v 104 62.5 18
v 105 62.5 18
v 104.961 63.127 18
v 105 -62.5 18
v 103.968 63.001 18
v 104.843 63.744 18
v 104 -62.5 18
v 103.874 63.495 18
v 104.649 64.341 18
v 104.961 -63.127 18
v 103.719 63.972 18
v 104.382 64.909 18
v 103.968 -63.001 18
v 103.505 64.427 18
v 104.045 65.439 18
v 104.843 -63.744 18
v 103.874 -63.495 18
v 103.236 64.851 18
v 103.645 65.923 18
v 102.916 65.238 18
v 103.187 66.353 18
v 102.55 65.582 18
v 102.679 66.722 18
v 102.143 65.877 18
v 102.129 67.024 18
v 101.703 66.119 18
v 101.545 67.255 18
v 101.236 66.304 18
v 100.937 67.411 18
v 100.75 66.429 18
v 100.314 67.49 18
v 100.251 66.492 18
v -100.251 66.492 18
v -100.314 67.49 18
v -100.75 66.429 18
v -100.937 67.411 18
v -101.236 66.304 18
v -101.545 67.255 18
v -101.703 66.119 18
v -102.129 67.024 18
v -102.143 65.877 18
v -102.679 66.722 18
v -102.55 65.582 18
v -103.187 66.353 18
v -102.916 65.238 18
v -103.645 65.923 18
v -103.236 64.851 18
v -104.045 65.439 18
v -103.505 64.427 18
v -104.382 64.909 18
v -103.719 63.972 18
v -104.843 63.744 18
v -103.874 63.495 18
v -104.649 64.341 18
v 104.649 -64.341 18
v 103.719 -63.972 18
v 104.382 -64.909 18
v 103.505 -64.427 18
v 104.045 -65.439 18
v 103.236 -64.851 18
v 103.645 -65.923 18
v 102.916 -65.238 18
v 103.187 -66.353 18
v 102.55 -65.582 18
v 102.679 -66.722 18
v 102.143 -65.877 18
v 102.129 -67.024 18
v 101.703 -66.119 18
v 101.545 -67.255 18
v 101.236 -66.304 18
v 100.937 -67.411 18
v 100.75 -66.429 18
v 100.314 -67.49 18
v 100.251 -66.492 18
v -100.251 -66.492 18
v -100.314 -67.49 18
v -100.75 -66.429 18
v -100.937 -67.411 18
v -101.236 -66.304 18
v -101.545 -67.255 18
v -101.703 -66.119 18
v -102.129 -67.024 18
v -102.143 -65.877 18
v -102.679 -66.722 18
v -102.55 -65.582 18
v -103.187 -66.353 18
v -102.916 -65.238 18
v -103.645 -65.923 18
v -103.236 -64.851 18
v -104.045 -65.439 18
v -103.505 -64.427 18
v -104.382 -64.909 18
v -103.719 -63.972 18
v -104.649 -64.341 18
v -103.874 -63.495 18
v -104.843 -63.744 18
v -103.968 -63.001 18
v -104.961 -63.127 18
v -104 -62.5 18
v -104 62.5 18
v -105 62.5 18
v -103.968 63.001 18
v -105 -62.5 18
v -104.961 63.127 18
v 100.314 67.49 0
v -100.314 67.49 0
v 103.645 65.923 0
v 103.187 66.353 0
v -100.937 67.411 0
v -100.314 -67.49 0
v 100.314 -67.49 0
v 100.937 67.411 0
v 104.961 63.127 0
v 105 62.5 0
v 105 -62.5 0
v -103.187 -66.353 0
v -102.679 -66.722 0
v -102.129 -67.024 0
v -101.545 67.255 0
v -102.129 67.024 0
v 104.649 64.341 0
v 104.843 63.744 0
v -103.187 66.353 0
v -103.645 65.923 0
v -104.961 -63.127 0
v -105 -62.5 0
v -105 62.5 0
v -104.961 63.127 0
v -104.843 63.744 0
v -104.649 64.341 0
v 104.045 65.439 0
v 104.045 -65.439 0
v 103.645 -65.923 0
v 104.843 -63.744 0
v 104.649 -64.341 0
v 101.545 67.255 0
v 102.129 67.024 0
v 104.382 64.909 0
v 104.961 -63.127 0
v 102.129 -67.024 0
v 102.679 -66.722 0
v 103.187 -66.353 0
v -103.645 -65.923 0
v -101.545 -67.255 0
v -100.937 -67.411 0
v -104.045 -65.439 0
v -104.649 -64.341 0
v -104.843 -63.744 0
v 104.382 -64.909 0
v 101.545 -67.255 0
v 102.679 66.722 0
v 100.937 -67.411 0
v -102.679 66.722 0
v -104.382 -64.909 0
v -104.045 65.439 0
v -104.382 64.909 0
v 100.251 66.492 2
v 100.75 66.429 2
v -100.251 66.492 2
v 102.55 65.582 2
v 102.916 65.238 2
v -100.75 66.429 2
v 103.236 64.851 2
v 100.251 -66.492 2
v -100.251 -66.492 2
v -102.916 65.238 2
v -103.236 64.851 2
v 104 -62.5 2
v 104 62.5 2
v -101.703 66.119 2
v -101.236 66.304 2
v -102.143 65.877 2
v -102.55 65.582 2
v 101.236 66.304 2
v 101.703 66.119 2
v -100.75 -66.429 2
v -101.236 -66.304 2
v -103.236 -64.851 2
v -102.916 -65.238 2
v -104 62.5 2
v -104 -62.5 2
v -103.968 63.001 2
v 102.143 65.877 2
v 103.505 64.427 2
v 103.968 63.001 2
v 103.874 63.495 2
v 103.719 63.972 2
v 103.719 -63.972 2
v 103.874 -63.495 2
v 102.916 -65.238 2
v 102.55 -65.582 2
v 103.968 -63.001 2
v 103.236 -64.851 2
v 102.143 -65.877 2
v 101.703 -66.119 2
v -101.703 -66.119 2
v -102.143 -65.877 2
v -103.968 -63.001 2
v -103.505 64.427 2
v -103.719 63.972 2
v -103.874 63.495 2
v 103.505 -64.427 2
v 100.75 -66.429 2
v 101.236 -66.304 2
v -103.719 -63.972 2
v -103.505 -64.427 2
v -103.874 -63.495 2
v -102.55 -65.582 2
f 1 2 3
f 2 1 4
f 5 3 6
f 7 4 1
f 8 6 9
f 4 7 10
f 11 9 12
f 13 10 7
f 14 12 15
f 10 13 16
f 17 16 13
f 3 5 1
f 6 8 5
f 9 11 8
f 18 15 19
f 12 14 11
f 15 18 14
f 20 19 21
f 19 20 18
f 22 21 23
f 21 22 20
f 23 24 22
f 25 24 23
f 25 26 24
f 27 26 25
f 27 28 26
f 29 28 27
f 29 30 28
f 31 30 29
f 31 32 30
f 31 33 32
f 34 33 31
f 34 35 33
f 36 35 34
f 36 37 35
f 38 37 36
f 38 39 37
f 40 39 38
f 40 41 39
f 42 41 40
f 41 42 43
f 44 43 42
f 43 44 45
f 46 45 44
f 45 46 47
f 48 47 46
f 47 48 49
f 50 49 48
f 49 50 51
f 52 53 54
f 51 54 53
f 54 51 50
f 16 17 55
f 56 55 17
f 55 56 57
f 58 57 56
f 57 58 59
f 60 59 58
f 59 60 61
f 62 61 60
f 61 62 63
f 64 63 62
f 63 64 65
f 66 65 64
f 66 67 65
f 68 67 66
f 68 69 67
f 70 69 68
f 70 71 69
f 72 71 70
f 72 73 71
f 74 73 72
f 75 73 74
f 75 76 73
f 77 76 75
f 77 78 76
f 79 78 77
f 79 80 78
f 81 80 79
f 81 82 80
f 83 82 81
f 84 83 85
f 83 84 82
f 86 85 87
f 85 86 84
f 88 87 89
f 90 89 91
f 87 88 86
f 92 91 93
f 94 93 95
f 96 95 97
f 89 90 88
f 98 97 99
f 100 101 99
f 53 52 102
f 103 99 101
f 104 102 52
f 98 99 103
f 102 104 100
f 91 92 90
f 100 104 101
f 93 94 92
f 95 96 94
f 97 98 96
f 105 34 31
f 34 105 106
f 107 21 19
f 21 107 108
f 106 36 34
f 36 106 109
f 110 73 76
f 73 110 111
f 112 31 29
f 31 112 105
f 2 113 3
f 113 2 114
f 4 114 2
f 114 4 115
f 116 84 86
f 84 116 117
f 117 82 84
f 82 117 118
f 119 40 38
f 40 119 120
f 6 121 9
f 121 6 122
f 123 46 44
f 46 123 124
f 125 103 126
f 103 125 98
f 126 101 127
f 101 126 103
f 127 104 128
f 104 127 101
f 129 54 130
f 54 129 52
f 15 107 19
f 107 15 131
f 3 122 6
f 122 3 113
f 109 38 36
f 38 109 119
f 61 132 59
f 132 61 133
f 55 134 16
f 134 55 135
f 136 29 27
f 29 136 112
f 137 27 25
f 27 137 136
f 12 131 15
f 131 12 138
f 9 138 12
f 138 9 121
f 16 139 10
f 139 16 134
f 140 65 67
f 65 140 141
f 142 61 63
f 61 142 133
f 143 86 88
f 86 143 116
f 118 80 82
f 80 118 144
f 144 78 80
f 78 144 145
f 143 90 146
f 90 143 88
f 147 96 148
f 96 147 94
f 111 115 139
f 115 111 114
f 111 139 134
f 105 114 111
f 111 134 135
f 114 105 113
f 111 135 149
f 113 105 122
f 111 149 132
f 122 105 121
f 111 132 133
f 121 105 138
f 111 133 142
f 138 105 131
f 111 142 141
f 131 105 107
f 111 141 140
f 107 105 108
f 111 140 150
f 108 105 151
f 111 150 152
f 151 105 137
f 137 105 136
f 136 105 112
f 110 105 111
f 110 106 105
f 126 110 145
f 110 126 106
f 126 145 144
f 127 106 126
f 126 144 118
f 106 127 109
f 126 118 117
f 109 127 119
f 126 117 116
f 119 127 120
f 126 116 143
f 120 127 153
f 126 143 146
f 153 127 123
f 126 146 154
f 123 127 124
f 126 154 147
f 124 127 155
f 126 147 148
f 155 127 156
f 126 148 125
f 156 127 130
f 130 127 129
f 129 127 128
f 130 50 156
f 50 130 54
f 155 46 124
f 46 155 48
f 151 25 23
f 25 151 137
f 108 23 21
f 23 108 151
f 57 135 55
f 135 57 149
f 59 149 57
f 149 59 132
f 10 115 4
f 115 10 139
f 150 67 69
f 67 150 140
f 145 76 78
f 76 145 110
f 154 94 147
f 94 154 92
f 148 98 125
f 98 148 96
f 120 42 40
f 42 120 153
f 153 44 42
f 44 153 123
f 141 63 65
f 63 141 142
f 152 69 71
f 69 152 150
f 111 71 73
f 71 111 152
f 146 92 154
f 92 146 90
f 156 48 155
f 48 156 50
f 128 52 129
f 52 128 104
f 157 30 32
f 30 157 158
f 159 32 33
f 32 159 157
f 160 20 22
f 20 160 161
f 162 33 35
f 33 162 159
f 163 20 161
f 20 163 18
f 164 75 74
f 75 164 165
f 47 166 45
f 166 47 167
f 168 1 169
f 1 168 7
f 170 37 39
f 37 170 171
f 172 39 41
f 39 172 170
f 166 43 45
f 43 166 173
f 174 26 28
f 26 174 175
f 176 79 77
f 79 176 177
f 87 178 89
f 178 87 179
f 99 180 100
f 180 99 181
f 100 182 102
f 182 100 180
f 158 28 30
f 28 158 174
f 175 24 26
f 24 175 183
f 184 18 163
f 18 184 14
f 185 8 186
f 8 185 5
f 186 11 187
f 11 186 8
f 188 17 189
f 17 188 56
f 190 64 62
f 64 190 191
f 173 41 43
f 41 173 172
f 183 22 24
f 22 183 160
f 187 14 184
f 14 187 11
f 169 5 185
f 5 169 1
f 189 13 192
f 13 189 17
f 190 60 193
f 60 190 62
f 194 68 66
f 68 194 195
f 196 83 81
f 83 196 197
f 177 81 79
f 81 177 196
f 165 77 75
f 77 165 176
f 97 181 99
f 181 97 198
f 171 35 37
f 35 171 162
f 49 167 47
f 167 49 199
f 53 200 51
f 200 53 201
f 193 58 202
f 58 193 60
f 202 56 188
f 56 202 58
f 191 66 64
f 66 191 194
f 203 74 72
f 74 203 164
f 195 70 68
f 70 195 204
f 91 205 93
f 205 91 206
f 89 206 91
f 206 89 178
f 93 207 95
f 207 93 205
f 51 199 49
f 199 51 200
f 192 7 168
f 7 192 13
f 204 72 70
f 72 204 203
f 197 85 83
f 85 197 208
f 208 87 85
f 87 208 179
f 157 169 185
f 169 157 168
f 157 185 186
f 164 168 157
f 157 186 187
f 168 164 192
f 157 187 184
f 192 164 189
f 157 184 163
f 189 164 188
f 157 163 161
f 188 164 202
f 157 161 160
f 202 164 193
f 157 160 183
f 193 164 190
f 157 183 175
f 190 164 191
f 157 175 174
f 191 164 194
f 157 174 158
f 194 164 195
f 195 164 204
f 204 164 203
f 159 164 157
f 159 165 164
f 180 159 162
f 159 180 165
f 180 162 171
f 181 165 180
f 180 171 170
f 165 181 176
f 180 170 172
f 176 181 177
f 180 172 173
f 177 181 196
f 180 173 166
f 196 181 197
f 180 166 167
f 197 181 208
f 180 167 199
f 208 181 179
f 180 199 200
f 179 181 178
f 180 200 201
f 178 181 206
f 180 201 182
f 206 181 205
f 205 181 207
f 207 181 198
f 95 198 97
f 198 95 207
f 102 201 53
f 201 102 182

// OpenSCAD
$fn = 50;


difference() {
	union() {
		hull() {
			translate(v = [-100.0000000000, 62.5000000000, 0]) {
				cylinder(h = 18, r = 5);
			}
			translate(v = [100.0000000000, 62.5000000000, 0]) {
				cylinder(h = 18, r = 5);
			}
			translate(v = [-100.0000000000, -62.5000000000, 0]) {
				cylinder(h = 18, r = 5);
			}
			translate(v = [100.0000000000, -62.5000000000, 0]) {
				cylinder(h = 18, r = 5);
			}
		}
	}
	union() {
		translate(v = [0, 0, 2]) {
			hull() {
				translate(v = [-100.0000000000, 62.5000000000, 0]) {
					cylinder(h = 16, r = 4);
				}
				translate(v = [100.0000000000, 62.5000000000, 0]) {
					cylinder(h = 16, r = 4);
				}
				translate(v = [-100.0000000000, -62.5000000000, 0]) {
					cylinder(h = 16, r = 4);
				}
				translate(v = [100.0000000000, -62.5000000000, 0]) {
					cylinder(h = 16, r = 4);
				}
			}
		}
	}
}
